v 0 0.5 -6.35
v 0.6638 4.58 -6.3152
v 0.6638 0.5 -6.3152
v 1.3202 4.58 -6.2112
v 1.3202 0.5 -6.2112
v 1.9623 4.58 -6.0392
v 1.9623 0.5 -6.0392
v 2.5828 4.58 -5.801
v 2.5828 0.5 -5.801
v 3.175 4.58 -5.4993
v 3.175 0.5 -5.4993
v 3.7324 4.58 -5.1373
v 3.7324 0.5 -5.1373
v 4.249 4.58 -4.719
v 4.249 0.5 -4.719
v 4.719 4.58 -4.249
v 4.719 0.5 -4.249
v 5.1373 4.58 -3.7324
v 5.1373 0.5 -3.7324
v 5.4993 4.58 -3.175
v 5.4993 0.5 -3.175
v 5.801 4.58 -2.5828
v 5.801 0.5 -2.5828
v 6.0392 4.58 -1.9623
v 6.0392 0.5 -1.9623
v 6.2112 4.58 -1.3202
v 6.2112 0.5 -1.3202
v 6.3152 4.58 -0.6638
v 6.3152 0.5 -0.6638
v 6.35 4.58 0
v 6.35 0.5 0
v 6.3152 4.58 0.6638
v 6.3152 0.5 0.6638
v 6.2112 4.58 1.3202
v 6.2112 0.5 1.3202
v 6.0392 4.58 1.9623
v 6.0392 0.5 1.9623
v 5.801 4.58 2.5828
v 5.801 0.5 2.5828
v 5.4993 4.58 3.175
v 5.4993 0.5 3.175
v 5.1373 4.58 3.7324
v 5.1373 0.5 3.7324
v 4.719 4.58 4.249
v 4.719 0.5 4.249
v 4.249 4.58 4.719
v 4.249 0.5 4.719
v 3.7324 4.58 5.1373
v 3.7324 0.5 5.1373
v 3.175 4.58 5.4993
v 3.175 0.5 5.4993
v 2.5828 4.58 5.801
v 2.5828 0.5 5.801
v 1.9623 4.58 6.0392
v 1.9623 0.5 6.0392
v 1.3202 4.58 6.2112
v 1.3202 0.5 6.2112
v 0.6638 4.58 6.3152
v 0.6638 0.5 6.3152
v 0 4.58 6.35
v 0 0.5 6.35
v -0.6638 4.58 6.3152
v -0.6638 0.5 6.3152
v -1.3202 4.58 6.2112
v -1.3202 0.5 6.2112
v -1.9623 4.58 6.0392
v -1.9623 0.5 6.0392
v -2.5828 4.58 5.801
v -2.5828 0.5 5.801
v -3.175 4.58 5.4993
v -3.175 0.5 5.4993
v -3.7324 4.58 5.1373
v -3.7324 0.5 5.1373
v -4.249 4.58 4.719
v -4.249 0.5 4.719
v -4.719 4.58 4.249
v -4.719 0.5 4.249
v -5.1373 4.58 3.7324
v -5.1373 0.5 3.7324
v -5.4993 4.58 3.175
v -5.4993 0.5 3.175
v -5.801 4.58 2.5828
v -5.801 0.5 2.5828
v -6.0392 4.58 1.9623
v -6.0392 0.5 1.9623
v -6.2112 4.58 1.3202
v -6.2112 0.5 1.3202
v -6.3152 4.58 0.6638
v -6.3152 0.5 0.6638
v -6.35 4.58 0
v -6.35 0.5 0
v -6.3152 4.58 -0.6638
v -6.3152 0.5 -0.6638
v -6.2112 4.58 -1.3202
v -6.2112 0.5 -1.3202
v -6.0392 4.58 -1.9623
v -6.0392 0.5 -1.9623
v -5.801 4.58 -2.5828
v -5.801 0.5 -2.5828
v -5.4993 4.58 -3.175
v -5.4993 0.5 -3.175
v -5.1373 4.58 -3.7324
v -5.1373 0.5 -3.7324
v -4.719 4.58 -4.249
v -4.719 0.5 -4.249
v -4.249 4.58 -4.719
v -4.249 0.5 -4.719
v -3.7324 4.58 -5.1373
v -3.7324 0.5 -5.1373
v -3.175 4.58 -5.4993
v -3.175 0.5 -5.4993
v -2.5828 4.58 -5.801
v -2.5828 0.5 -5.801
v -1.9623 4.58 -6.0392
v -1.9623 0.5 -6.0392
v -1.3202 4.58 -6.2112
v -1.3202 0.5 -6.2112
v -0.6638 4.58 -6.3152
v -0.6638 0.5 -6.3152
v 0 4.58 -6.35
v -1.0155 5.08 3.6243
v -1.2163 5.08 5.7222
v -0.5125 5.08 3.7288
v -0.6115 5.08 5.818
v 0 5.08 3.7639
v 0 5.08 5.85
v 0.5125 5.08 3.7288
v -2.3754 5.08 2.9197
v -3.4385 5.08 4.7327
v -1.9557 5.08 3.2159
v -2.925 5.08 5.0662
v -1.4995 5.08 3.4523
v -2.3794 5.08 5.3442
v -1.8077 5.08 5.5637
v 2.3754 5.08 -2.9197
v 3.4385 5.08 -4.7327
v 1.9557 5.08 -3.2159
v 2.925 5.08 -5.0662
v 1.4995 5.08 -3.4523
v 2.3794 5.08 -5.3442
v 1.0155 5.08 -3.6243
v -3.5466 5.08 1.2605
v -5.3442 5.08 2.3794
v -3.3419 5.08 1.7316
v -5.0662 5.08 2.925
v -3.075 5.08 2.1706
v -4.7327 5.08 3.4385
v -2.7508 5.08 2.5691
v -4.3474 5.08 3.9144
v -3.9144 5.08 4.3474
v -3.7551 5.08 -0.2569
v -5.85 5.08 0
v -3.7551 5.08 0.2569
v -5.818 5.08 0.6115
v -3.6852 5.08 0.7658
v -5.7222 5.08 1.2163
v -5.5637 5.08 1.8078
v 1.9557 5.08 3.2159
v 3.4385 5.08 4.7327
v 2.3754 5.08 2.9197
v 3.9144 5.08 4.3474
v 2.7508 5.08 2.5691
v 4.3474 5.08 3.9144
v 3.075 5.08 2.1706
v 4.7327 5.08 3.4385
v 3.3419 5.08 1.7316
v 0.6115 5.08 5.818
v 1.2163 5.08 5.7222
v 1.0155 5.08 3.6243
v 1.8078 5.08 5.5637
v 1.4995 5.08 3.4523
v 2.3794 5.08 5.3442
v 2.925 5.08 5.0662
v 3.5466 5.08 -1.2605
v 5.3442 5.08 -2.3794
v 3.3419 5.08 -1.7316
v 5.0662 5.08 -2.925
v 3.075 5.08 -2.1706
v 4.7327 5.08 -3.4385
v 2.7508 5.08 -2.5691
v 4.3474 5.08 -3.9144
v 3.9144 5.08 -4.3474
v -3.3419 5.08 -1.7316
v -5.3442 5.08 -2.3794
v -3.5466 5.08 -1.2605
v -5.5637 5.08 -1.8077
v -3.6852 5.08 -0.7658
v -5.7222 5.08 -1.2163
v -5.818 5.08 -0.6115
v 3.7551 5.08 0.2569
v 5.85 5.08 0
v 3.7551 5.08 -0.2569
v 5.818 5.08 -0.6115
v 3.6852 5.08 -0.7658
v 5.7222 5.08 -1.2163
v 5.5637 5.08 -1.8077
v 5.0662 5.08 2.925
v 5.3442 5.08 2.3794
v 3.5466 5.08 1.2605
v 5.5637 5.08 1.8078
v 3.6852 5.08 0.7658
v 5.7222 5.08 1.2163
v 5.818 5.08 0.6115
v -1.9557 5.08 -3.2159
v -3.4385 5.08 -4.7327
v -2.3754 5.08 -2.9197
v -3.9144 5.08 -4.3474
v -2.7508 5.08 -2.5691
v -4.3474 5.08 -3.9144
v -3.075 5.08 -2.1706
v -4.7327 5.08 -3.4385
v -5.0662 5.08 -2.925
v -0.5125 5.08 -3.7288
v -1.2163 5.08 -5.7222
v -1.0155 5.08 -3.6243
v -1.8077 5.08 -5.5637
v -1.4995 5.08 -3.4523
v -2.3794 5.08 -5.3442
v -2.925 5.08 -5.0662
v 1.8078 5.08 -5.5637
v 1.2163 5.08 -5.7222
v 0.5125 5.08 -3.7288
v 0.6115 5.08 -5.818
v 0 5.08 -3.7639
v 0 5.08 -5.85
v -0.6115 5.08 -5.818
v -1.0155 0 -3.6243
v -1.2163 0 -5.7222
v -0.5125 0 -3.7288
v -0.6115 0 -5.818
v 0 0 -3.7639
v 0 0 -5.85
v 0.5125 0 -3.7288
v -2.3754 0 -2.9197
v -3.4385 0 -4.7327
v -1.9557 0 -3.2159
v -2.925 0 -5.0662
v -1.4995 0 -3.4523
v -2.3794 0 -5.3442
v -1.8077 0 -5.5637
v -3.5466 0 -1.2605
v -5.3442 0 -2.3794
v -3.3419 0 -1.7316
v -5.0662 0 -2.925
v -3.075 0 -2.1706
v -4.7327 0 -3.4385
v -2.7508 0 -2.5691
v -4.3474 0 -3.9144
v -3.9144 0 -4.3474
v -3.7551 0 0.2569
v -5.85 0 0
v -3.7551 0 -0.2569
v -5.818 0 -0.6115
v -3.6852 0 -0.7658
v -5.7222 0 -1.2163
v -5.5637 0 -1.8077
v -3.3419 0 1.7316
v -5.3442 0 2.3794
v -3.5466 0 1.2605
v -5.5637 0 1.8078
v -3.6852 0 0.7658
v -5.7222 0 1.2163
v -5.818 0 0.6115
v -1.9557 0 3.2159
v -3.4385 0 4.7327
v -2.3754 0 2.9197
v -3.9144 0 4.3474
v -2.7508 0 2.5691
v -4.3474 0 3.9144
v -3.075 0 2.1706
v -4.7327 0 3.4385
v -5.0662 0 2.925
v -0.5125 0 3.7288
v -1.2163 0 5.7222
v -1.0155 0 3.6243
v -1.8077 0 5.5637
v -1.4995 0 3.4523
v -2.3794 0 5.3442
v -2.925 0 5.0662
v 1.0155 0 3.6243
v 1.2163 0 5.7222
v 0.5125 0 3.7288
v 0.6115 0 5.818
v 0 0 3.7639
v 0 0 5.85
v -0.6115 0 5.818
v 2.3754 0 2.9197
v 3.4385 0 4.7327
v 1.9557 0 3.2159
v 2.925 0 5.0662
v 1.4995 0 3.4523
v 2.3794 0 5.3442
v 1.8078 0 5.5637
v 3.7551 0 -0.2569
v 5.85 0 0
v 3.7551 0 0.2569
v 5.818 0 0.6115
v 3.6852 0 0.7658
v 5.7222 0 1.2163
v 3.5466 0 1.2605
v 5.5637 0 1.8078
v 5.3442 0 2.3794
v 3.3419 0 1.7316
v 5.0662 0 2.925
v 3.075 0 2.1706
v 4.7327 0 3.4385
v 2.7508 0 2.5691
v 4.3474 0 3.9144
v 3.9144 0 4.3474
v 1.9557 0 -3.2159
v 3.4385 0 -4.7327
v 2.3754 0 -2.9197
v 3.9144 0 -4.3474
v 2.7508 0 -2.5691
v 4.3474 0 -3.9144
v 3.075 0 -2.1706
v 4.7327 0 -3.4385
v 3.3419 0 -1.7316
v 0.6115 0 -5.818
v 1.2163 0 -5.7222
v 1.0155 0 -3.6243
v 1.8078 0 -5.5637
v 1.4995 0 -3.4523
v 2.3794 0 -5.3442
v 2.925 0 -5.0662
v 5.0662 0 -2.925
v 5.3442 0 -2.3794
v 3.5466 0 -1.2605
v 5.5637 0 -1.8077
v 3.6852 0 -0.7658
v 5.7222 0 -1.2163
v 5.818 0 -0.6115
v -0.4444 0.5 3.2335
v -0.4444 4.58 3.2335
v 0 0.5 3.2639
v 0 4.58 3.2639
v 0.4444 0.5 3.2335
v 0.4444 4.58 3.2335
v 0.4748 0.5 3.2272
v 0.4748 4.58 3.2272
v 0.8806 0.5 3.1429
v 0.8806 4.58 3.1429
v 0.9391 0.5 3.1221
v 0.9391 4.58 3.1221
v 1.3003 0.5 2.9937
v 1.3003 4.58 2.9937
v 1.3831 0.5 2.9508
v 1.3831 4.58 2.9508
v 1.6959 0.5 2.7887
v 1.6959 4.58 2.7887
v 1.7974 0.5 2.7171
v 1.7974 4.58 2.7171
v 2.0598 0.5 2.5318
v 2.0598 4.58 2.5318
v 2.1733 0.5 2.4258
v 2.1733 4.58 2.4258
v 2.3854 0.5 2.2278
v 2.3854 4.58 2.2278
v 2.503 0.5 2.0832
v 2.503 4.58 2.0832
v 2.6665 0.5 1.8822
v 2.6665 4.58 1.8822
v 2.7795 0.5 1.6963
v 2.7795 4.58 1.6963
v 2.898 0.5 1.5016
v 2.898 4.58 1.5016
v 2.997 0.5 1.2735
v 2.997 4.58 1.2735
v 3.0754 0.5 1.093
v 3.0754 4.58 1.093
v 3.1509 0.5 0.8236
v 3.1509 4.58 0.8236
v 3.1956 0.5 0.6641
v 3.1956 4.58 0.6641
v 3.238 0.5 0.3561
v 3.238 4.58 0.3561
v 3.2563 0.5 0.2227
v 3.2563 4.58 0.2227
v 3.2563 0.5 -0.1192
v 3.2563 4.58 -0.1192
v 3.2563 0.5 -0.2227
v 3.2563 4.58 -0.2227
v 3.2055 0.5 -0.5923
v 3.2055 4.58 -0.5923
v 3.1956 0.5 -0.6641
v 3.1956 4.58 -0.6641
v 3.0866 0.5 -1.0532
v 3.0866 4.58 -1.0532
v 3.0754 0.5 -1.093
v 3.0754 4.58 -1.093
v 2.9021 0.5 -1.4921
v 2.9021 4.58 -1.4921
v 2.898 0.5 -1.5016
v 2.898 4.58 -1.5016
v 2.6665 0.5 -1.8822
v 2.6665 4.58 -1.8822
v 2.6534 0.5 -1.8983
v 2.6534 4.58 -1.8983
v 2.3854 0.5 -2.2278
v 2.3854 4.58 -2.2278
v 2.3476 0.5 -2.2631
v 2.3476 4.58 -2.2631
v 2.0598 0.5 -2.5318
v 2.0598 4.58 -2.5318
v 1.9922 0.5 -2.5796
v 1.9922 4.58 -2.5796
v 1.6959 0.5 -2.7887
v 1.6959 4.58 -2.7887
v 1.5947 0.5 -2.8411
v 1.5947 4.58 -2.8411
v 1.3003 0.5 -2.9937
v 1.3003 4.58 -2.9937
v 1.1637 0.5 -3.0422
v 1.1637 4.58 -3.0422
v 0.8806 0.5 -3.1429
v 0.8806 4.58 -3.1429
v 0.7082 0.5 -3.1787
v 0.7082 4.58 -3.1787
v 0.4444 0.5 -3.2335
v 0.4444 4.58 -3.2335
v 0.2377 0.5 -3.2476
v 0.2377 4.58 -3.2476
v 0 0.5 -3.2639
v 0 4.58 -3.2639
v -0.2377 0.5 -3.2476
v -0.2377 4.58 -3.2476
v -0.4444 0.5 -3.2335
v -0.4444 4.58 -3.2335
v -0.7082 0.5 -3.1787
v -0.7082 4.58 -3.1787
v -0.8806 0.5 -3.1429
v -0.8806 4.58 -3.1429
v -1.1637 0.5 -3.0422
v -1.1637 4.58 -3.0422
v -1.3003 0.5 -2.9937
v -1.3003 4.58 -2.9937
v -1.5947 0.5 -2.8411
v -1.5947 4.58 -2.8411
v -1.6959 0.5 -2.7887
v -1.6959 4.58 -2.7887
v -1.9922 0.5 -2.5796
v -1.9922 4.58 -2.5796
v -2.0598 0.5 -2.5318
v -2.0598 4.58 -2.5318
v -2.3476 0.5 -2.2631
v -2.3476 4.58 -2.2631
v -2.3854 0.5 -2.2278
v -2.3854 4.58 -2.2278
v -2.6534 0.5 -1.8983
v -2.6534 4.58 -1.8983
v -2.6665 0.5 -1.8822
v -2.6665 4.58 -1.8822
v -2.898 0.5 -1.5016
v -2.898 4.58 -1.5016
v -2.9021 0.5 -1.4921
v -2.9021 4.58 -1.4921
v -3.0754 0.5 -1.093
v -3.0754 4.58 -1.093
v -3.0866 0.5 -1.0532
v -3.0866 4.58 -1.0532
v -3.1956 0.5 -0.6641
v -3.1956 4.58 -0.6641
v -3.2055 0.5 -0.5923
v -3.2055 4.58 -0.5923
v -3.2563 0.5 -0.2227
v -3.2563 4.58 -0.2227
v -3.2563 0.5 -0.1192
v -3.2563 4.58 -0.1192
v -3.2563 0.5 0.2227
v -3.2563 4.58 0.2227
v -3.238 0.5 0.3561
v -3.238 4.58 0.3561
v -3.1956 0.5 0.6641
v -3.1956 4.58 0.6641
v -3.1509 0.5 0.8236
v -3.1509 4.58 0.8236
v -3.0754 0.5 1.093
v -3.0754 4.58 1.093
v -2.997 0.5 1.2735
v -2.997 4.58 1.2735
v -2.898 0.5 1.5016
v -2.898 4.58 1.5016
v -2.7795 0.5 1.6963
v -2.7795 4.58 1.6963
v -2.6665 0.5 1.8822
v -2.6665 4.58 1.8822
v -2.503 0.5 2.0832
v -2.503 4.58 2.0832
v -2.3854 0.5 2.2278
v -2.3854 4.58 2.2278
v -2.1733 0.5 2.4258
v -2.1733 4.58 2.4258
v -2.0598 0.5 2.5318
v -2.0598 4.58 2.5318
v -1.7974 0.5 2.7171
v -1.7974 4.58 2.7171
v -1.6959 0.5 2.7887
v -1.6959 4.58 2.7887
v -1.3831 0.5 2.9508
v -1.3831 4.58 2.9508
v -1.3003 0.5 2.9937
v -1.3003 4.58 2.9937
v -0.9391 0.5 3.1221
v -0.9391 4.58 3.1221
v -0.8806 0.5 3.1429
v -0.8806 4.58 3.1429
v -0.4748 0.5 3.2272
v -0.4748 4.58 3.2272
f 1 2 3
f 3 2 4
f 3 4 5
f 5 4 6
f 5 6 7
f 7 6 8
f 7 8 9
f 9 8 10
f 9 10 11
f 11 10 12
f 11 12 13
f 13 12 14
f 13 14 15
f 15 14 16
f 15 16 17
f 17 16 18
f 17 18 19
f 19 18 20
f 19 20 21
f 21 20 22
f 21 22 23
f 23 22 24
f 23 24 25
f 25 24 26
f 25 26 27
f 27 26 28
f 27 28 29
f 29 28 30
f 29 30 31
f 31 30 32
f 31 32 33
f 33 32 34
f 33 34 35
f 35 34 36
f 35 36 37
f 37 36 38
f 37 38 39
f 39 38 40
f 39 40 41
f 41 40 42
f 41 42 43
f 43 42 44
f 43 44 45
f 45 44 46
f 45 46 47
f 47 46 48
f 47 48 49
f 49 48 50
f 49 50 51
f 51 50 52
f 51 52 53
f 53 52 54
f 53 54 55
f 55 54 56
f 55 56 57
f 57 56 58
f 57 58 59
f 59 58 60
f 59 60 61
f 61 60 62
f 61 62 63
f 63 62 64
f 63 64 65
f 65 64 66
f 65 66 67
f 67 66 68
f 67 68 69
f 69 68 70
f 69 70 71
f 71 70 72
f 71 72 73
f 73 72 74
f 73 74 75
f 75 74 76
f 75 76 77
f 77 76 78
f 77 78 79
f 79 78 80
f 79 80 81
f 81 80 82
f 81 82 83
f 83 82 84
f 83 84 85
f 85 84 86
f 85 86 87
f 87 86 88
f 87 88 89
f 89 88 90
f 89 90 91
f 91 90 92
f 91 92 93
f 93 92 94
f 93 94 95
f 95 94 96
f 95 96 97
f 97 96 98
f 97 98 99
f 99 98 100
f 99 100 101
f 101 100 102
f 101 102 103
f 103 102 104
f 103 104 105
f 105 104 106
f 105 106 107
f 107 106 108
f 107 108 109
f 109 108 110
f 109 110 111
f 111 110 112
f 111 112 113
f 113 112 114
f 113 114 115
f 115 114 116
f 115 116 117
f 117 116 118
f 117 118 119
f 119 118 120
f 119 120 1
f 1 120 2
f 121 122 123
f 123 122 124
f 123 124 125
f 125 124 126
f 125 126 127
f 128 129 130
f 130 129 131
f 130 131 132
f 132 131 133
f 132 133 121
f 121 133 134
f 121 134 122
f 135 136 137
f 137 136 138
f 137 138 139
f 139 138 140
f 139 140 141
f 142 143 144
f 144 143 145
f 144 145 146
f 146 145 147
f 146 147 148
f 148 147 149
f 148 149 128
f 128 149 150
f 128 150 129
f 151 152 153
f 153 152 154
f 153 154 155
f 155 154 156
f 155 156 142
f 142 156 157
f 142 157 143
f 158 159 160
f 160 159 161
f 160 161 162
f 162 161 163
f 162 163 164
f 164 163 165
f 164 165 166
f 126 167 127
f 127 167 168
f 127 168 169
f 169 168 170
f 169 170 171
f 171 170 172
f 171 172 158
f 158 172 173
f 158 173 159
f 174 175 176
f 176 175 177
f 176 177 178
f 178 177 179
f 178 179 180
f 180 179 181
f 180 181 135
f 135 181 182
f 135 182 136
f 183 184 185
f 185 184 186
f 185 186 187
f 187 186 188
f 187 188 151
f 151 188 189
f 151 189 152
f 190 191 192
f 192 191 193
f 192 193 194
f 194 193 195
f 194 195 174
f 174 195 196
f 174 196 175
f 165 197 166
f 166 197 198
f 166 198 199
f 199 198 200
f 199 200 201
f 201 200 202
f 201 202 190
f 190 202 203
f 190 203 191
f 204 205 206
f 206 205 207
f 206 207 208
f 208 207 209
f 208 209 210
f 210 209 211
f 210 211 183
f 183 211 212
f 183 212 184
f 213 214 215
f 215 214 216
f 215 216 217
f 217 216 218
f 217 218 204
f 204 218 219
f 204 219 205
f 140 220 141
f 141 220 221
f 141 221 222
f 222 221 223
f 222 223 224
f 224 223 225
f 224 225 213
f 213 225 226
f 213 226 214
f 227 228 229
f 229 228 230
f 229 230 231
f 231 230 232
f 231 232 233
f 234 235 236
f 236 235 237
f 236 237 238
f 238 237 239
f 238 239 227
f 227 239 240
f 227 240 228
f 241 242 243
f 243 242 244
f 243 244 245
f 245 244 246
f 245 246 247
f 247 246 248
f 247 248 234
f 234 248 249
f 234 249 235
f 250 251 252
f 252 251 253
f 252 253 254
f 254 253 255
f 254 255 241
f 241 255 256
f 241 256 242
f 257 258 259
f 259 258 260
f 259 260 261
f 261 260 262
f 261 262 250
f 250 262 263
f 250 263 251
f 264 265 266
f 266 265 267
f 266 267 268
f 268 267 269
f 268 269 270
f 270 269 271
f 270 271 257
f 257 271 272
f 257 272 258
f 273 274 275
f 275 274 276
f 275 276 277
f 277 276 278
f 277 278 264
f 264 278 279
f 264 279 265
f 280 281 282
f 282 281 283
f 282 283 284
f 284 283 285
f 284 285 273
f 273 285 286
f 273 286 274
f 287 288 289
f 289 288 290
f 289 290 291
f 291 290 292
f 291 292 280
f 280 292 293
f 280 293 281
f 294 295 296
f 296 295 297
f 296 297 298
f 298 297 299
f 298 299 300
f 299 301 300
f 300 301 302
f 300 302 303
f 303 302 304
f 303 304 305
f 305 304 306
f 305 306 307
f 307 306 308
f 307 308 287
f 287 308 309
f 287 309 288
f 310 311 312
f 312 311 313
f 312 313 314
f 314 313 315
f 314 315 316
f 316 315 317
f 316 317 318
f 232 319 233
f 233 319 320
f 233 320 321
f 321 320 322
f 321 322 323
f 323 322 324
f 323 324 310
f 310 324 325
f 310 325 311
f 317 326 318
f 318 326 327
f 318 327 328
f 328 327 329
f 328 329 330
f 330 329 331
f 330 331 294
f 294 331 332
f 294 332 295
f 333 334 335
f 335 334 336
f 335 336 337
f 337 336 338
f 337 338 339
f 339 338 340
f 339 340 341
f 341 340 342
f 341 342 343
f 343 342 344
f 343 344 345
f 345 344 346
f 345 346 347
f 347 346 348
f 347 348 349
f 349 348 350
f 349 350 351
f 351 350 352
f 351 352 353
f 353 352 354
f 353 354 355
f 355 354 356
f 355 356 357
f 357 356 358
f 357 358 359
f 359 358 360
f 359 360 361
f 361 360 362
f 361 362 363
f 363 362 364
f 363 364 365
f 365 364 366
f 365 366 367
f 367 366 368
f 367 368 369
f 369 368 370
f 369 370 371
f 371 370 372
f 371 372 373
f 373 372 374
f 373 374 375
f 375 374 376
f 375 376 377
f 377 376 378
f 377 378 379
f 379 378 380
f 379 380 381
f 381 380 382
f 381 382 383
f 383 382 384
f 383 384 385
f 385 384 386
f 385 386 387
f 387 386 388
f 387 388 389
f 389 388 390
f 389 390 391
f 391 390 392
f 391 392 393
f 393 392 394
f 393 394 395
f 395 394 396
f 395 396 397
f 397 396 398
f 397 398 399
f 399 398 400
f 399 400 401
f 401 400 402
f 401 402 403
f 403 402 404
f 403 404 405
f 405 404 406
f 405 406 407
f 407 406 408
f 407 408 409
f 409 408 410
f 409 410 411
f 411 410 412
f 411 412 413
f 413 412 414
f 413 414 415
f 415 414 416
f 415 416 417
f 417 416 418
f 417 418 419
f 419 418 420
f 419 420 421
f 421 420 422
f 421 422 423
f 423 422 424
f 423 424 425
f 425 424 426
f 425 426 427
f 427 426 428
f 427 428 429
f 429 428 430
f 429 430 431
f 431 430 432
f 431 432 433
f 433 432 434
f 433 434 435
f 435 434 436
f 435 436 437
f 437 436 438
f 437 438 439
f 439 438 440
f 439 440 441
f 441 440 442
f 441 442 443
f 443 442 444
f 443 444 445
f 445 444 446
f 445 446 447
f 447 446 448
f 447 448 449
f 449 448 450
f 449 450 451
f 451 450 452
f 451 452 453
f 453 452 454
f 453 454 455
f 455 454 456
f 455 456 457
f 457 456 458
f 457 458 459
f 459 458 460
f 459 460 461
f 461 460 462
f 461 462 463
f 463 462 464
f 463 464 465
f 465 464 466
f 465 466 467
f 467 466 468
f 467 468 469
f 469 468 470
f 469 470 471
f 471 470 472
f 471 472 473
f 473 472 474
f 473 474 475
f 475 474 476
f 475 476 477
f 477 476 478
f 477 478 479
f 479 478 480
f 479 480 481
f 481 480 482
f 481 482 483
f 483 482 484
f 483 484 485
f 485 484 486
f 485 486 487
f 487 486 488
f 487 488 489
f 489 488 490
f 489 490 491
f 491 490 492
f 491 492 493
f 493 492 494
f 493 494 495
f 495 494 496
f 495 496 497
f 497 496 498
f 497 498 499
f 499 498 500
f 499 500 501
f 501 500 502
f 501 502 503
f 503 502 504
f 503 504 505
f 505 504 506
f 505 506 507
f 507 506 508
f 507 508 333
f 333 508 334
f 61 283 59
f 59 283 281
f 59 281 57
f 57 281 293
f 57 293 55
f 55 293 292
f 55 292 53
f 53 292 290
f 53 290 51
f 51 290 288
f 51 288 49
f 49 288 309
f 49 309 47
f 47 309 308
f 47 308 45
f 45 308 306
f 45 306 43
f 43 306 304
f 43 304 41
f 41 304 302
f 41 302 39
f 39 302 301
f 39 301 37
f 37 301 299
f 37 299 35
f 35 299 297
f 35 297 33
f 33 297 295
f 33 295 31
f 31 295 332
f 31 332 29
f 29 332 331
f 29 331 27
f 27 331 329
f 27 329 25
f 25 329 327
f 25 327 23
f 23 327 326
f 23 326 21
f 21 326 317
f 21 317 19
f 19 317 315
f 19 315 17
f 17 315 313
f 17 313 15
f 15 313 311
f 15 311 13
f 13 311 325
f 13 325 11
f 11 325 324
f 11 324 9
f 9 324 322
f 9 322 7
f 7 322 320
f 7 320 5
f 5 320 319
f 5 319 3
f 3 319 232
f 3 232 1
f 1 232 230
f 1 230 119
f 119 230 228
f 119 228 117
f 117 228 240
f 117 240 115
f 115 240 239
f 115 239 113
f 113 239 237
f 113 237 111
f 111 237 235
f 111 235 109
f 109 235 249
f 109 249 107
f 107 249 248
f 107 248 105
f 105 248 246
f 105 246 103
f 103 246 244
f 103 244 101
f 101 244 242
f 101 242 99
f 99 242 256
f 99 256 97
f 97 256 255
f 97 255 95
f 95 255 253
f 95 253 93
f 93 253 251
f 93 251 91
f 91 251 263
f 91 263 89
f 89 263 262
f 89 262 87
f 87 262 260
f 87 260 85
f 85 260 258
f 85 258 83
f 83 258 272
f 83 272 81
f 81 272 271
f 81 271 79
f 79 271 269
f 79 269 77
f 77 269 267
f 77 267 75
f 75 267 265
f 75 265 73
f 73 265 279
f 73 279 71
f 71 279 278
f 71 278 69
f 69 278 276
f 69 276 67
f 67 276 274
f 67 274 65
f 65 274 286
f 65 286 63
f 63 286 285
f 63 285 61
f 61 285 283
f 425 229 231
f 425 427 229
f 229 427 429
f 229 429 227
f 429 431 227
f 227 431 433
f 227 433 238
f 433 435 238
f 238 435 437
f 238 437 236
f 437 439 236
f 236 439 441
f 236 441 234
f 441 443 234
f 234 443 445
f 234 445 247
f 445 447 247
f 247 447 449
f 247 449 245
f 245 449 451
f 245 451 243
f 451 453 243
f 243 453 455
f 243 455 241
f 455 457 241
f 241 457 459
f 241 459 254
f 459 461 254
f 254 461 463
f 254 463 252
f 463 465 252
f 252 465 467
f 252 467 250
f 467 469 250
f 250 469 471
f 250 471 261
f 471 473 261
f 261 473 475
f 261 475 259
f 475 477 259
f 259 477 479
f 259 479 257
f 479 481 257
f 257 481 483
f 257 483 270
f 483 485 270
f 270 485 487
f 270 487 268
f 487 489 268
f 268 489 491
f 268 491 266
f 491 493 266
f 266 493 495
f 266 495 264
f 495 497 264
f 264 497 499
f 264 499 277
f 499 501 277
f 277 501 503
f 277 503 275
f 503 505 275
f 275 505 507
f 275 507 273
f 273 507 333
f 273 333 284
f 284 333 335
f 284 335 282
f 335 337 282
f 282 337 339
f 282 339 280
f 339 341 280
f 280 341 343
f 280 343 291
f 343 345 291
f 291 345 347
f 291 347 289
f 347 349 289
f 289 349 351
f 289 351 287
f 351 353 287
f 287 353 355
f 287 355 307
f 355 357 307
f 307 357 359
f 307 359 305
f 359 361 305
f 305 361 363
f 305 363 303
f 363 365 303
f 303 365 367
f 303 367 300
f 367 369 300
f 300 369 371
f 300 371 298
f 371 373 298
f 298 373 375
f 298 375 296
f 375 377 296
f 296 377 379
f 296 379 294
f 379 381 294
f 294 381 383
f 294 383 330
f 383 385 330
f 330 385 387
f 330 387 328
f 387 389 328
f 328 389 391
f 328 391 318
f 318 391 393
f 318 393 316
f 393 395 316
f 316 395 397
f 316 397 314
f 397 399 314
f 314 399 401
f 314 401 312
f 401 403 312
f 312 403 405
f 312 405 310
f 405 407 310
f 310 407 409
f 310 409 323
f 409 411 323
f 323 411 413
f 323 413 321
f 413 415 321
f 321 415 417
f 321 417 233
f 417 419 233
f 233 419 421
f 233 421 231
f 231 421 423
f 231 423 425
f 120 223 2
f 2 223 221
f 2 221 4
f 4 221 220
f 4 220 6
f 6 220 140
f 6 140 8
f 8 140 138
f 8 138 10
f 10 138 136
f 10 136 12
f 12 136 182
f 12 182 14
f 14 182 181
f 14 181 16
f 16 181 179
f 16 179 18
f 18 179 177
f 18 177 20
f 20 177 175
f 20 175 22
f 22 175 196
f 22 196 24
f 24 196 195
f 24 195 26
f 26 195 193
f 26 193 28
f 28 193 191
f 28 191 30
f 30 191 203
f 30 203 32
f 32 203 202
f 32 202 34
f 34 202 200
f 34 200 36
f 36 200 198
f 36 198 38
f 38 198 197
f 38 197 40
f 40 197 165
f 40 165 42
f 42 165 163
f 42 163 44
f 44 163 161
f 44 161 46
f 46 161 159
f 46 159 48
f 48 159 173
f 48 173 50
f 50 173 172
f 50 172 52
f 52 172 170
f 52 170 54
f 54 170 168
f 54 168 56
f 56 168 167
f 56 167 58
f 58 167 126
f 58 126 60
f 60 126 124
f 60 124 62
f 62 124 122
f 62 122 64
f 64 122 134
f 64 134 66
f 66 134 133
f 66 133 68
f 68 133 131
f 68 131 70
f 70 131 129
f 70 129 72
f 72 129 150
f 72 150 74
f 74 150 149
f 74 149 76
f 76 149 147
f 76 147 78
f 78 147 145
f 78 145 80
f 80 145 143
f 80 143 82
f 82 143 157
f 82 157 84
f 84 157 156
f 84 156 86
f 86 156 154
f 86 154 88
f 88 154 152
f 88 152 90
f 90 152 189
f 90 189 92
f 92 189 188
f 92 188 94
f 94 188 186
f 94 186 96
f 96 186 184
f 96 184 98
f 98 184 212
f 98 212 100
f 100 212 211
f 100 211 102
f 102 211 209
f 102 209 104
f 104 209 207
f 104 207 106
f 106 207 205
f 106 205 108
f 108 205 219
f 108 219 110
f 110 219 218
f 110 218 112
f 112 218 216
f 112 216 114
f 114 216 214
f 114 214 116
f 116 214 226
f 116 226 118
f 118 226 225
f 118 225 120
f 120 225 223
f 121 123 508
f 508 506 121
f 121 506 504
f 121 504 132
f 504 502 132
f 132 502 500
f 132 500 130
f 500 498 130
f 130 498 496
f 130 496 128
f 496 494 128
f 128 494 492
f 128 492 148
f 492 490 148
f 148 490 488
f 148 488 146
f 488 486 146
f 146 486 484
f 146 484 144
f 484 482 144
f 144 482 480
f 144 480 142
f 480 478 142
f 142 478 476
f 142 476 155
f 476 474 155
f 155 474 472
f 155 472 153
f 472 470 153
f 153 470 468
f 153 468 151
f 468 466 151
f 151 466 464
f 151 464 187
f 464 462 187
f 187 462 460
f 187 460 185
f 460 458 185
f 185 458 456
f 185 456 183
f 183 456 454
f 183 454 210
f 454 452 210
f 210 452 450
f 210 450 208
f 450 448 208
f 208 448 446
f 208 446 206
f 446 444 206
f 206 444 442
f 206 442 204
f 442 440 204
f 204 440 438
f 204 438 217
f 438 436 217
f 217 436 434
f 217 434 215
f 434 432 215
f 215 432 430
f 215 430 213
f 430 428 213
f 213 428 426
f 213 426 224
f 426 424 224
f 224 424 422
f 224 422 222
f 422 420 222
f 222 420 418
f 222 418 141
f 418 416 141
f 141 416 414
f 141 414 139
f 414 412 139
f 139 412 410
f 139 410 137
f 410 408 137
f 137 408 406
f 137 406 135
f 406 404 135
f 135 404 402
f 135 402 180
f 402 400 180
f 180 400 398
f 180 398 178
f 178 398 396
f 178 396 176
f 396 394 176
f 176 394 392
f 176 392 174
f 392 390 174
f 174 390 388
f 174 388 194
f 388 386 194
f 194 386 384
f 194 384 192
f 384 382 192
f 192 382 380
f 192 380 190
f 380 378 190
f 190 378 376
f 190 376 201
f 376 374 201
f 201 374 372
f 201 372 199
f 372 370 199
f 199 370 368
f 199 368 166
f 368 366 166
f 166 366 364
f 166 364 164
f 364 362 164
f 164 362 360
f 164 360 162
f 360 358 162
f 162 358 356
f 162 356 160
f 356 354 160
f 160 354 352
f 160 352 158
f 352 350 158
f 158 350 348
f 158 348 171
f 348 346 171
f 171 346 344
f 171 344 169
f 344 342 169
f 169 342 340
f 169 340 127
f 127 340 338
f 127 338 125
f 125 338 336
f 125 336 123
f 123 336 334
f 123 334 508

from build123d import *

# Parameters (mm, degrees)
SKETCH1_R                = 6.35
BOSS_EXTRUDE1_DEPTH      = 5.08
F_0_257_DIAMETER_HOLE1_D = 6.5278
CHAMFER1_SIZE            = 0.5


with BuildPart() as part:
    # Sketch1 → Boss-Extrude1 (new body)
    with BuildSketch(Plane(origin=(0, 0, 0), x_dir=(1, 0, 0), z_dir=(0, 1, 0))):
        with Locations(Location((0, 0, 0), (0, 0, 270))):
            Circle(SKETCH1_R)
    extrude(amount=BOSS_EXTRUDE1_DEPTH)

    # F (0.257) Diameter Hole1 (through all)
    with Locations(Plane(origin=(0, 5.08, 0), x_dir=(1, 0, 0), z_dir=(0, 1, 0))):
        with Locations((0, 0)):
            Hole(F_0_257_DIAMETER_HOLE1_D / 2)

    # Chamfer1
    chamfer1_edges = [part.edges().sort_by_distance(p)[0] for p in [
        (0, 0, -6.35),
        (0, 5.08, -6.35),
        (3.2639, 5.08, 0),
        (3.2639, 0, 0),
    ]]
    chamfer(chamfer1_edges, length=CHAMFER1_SIZE)


solid = part.part
